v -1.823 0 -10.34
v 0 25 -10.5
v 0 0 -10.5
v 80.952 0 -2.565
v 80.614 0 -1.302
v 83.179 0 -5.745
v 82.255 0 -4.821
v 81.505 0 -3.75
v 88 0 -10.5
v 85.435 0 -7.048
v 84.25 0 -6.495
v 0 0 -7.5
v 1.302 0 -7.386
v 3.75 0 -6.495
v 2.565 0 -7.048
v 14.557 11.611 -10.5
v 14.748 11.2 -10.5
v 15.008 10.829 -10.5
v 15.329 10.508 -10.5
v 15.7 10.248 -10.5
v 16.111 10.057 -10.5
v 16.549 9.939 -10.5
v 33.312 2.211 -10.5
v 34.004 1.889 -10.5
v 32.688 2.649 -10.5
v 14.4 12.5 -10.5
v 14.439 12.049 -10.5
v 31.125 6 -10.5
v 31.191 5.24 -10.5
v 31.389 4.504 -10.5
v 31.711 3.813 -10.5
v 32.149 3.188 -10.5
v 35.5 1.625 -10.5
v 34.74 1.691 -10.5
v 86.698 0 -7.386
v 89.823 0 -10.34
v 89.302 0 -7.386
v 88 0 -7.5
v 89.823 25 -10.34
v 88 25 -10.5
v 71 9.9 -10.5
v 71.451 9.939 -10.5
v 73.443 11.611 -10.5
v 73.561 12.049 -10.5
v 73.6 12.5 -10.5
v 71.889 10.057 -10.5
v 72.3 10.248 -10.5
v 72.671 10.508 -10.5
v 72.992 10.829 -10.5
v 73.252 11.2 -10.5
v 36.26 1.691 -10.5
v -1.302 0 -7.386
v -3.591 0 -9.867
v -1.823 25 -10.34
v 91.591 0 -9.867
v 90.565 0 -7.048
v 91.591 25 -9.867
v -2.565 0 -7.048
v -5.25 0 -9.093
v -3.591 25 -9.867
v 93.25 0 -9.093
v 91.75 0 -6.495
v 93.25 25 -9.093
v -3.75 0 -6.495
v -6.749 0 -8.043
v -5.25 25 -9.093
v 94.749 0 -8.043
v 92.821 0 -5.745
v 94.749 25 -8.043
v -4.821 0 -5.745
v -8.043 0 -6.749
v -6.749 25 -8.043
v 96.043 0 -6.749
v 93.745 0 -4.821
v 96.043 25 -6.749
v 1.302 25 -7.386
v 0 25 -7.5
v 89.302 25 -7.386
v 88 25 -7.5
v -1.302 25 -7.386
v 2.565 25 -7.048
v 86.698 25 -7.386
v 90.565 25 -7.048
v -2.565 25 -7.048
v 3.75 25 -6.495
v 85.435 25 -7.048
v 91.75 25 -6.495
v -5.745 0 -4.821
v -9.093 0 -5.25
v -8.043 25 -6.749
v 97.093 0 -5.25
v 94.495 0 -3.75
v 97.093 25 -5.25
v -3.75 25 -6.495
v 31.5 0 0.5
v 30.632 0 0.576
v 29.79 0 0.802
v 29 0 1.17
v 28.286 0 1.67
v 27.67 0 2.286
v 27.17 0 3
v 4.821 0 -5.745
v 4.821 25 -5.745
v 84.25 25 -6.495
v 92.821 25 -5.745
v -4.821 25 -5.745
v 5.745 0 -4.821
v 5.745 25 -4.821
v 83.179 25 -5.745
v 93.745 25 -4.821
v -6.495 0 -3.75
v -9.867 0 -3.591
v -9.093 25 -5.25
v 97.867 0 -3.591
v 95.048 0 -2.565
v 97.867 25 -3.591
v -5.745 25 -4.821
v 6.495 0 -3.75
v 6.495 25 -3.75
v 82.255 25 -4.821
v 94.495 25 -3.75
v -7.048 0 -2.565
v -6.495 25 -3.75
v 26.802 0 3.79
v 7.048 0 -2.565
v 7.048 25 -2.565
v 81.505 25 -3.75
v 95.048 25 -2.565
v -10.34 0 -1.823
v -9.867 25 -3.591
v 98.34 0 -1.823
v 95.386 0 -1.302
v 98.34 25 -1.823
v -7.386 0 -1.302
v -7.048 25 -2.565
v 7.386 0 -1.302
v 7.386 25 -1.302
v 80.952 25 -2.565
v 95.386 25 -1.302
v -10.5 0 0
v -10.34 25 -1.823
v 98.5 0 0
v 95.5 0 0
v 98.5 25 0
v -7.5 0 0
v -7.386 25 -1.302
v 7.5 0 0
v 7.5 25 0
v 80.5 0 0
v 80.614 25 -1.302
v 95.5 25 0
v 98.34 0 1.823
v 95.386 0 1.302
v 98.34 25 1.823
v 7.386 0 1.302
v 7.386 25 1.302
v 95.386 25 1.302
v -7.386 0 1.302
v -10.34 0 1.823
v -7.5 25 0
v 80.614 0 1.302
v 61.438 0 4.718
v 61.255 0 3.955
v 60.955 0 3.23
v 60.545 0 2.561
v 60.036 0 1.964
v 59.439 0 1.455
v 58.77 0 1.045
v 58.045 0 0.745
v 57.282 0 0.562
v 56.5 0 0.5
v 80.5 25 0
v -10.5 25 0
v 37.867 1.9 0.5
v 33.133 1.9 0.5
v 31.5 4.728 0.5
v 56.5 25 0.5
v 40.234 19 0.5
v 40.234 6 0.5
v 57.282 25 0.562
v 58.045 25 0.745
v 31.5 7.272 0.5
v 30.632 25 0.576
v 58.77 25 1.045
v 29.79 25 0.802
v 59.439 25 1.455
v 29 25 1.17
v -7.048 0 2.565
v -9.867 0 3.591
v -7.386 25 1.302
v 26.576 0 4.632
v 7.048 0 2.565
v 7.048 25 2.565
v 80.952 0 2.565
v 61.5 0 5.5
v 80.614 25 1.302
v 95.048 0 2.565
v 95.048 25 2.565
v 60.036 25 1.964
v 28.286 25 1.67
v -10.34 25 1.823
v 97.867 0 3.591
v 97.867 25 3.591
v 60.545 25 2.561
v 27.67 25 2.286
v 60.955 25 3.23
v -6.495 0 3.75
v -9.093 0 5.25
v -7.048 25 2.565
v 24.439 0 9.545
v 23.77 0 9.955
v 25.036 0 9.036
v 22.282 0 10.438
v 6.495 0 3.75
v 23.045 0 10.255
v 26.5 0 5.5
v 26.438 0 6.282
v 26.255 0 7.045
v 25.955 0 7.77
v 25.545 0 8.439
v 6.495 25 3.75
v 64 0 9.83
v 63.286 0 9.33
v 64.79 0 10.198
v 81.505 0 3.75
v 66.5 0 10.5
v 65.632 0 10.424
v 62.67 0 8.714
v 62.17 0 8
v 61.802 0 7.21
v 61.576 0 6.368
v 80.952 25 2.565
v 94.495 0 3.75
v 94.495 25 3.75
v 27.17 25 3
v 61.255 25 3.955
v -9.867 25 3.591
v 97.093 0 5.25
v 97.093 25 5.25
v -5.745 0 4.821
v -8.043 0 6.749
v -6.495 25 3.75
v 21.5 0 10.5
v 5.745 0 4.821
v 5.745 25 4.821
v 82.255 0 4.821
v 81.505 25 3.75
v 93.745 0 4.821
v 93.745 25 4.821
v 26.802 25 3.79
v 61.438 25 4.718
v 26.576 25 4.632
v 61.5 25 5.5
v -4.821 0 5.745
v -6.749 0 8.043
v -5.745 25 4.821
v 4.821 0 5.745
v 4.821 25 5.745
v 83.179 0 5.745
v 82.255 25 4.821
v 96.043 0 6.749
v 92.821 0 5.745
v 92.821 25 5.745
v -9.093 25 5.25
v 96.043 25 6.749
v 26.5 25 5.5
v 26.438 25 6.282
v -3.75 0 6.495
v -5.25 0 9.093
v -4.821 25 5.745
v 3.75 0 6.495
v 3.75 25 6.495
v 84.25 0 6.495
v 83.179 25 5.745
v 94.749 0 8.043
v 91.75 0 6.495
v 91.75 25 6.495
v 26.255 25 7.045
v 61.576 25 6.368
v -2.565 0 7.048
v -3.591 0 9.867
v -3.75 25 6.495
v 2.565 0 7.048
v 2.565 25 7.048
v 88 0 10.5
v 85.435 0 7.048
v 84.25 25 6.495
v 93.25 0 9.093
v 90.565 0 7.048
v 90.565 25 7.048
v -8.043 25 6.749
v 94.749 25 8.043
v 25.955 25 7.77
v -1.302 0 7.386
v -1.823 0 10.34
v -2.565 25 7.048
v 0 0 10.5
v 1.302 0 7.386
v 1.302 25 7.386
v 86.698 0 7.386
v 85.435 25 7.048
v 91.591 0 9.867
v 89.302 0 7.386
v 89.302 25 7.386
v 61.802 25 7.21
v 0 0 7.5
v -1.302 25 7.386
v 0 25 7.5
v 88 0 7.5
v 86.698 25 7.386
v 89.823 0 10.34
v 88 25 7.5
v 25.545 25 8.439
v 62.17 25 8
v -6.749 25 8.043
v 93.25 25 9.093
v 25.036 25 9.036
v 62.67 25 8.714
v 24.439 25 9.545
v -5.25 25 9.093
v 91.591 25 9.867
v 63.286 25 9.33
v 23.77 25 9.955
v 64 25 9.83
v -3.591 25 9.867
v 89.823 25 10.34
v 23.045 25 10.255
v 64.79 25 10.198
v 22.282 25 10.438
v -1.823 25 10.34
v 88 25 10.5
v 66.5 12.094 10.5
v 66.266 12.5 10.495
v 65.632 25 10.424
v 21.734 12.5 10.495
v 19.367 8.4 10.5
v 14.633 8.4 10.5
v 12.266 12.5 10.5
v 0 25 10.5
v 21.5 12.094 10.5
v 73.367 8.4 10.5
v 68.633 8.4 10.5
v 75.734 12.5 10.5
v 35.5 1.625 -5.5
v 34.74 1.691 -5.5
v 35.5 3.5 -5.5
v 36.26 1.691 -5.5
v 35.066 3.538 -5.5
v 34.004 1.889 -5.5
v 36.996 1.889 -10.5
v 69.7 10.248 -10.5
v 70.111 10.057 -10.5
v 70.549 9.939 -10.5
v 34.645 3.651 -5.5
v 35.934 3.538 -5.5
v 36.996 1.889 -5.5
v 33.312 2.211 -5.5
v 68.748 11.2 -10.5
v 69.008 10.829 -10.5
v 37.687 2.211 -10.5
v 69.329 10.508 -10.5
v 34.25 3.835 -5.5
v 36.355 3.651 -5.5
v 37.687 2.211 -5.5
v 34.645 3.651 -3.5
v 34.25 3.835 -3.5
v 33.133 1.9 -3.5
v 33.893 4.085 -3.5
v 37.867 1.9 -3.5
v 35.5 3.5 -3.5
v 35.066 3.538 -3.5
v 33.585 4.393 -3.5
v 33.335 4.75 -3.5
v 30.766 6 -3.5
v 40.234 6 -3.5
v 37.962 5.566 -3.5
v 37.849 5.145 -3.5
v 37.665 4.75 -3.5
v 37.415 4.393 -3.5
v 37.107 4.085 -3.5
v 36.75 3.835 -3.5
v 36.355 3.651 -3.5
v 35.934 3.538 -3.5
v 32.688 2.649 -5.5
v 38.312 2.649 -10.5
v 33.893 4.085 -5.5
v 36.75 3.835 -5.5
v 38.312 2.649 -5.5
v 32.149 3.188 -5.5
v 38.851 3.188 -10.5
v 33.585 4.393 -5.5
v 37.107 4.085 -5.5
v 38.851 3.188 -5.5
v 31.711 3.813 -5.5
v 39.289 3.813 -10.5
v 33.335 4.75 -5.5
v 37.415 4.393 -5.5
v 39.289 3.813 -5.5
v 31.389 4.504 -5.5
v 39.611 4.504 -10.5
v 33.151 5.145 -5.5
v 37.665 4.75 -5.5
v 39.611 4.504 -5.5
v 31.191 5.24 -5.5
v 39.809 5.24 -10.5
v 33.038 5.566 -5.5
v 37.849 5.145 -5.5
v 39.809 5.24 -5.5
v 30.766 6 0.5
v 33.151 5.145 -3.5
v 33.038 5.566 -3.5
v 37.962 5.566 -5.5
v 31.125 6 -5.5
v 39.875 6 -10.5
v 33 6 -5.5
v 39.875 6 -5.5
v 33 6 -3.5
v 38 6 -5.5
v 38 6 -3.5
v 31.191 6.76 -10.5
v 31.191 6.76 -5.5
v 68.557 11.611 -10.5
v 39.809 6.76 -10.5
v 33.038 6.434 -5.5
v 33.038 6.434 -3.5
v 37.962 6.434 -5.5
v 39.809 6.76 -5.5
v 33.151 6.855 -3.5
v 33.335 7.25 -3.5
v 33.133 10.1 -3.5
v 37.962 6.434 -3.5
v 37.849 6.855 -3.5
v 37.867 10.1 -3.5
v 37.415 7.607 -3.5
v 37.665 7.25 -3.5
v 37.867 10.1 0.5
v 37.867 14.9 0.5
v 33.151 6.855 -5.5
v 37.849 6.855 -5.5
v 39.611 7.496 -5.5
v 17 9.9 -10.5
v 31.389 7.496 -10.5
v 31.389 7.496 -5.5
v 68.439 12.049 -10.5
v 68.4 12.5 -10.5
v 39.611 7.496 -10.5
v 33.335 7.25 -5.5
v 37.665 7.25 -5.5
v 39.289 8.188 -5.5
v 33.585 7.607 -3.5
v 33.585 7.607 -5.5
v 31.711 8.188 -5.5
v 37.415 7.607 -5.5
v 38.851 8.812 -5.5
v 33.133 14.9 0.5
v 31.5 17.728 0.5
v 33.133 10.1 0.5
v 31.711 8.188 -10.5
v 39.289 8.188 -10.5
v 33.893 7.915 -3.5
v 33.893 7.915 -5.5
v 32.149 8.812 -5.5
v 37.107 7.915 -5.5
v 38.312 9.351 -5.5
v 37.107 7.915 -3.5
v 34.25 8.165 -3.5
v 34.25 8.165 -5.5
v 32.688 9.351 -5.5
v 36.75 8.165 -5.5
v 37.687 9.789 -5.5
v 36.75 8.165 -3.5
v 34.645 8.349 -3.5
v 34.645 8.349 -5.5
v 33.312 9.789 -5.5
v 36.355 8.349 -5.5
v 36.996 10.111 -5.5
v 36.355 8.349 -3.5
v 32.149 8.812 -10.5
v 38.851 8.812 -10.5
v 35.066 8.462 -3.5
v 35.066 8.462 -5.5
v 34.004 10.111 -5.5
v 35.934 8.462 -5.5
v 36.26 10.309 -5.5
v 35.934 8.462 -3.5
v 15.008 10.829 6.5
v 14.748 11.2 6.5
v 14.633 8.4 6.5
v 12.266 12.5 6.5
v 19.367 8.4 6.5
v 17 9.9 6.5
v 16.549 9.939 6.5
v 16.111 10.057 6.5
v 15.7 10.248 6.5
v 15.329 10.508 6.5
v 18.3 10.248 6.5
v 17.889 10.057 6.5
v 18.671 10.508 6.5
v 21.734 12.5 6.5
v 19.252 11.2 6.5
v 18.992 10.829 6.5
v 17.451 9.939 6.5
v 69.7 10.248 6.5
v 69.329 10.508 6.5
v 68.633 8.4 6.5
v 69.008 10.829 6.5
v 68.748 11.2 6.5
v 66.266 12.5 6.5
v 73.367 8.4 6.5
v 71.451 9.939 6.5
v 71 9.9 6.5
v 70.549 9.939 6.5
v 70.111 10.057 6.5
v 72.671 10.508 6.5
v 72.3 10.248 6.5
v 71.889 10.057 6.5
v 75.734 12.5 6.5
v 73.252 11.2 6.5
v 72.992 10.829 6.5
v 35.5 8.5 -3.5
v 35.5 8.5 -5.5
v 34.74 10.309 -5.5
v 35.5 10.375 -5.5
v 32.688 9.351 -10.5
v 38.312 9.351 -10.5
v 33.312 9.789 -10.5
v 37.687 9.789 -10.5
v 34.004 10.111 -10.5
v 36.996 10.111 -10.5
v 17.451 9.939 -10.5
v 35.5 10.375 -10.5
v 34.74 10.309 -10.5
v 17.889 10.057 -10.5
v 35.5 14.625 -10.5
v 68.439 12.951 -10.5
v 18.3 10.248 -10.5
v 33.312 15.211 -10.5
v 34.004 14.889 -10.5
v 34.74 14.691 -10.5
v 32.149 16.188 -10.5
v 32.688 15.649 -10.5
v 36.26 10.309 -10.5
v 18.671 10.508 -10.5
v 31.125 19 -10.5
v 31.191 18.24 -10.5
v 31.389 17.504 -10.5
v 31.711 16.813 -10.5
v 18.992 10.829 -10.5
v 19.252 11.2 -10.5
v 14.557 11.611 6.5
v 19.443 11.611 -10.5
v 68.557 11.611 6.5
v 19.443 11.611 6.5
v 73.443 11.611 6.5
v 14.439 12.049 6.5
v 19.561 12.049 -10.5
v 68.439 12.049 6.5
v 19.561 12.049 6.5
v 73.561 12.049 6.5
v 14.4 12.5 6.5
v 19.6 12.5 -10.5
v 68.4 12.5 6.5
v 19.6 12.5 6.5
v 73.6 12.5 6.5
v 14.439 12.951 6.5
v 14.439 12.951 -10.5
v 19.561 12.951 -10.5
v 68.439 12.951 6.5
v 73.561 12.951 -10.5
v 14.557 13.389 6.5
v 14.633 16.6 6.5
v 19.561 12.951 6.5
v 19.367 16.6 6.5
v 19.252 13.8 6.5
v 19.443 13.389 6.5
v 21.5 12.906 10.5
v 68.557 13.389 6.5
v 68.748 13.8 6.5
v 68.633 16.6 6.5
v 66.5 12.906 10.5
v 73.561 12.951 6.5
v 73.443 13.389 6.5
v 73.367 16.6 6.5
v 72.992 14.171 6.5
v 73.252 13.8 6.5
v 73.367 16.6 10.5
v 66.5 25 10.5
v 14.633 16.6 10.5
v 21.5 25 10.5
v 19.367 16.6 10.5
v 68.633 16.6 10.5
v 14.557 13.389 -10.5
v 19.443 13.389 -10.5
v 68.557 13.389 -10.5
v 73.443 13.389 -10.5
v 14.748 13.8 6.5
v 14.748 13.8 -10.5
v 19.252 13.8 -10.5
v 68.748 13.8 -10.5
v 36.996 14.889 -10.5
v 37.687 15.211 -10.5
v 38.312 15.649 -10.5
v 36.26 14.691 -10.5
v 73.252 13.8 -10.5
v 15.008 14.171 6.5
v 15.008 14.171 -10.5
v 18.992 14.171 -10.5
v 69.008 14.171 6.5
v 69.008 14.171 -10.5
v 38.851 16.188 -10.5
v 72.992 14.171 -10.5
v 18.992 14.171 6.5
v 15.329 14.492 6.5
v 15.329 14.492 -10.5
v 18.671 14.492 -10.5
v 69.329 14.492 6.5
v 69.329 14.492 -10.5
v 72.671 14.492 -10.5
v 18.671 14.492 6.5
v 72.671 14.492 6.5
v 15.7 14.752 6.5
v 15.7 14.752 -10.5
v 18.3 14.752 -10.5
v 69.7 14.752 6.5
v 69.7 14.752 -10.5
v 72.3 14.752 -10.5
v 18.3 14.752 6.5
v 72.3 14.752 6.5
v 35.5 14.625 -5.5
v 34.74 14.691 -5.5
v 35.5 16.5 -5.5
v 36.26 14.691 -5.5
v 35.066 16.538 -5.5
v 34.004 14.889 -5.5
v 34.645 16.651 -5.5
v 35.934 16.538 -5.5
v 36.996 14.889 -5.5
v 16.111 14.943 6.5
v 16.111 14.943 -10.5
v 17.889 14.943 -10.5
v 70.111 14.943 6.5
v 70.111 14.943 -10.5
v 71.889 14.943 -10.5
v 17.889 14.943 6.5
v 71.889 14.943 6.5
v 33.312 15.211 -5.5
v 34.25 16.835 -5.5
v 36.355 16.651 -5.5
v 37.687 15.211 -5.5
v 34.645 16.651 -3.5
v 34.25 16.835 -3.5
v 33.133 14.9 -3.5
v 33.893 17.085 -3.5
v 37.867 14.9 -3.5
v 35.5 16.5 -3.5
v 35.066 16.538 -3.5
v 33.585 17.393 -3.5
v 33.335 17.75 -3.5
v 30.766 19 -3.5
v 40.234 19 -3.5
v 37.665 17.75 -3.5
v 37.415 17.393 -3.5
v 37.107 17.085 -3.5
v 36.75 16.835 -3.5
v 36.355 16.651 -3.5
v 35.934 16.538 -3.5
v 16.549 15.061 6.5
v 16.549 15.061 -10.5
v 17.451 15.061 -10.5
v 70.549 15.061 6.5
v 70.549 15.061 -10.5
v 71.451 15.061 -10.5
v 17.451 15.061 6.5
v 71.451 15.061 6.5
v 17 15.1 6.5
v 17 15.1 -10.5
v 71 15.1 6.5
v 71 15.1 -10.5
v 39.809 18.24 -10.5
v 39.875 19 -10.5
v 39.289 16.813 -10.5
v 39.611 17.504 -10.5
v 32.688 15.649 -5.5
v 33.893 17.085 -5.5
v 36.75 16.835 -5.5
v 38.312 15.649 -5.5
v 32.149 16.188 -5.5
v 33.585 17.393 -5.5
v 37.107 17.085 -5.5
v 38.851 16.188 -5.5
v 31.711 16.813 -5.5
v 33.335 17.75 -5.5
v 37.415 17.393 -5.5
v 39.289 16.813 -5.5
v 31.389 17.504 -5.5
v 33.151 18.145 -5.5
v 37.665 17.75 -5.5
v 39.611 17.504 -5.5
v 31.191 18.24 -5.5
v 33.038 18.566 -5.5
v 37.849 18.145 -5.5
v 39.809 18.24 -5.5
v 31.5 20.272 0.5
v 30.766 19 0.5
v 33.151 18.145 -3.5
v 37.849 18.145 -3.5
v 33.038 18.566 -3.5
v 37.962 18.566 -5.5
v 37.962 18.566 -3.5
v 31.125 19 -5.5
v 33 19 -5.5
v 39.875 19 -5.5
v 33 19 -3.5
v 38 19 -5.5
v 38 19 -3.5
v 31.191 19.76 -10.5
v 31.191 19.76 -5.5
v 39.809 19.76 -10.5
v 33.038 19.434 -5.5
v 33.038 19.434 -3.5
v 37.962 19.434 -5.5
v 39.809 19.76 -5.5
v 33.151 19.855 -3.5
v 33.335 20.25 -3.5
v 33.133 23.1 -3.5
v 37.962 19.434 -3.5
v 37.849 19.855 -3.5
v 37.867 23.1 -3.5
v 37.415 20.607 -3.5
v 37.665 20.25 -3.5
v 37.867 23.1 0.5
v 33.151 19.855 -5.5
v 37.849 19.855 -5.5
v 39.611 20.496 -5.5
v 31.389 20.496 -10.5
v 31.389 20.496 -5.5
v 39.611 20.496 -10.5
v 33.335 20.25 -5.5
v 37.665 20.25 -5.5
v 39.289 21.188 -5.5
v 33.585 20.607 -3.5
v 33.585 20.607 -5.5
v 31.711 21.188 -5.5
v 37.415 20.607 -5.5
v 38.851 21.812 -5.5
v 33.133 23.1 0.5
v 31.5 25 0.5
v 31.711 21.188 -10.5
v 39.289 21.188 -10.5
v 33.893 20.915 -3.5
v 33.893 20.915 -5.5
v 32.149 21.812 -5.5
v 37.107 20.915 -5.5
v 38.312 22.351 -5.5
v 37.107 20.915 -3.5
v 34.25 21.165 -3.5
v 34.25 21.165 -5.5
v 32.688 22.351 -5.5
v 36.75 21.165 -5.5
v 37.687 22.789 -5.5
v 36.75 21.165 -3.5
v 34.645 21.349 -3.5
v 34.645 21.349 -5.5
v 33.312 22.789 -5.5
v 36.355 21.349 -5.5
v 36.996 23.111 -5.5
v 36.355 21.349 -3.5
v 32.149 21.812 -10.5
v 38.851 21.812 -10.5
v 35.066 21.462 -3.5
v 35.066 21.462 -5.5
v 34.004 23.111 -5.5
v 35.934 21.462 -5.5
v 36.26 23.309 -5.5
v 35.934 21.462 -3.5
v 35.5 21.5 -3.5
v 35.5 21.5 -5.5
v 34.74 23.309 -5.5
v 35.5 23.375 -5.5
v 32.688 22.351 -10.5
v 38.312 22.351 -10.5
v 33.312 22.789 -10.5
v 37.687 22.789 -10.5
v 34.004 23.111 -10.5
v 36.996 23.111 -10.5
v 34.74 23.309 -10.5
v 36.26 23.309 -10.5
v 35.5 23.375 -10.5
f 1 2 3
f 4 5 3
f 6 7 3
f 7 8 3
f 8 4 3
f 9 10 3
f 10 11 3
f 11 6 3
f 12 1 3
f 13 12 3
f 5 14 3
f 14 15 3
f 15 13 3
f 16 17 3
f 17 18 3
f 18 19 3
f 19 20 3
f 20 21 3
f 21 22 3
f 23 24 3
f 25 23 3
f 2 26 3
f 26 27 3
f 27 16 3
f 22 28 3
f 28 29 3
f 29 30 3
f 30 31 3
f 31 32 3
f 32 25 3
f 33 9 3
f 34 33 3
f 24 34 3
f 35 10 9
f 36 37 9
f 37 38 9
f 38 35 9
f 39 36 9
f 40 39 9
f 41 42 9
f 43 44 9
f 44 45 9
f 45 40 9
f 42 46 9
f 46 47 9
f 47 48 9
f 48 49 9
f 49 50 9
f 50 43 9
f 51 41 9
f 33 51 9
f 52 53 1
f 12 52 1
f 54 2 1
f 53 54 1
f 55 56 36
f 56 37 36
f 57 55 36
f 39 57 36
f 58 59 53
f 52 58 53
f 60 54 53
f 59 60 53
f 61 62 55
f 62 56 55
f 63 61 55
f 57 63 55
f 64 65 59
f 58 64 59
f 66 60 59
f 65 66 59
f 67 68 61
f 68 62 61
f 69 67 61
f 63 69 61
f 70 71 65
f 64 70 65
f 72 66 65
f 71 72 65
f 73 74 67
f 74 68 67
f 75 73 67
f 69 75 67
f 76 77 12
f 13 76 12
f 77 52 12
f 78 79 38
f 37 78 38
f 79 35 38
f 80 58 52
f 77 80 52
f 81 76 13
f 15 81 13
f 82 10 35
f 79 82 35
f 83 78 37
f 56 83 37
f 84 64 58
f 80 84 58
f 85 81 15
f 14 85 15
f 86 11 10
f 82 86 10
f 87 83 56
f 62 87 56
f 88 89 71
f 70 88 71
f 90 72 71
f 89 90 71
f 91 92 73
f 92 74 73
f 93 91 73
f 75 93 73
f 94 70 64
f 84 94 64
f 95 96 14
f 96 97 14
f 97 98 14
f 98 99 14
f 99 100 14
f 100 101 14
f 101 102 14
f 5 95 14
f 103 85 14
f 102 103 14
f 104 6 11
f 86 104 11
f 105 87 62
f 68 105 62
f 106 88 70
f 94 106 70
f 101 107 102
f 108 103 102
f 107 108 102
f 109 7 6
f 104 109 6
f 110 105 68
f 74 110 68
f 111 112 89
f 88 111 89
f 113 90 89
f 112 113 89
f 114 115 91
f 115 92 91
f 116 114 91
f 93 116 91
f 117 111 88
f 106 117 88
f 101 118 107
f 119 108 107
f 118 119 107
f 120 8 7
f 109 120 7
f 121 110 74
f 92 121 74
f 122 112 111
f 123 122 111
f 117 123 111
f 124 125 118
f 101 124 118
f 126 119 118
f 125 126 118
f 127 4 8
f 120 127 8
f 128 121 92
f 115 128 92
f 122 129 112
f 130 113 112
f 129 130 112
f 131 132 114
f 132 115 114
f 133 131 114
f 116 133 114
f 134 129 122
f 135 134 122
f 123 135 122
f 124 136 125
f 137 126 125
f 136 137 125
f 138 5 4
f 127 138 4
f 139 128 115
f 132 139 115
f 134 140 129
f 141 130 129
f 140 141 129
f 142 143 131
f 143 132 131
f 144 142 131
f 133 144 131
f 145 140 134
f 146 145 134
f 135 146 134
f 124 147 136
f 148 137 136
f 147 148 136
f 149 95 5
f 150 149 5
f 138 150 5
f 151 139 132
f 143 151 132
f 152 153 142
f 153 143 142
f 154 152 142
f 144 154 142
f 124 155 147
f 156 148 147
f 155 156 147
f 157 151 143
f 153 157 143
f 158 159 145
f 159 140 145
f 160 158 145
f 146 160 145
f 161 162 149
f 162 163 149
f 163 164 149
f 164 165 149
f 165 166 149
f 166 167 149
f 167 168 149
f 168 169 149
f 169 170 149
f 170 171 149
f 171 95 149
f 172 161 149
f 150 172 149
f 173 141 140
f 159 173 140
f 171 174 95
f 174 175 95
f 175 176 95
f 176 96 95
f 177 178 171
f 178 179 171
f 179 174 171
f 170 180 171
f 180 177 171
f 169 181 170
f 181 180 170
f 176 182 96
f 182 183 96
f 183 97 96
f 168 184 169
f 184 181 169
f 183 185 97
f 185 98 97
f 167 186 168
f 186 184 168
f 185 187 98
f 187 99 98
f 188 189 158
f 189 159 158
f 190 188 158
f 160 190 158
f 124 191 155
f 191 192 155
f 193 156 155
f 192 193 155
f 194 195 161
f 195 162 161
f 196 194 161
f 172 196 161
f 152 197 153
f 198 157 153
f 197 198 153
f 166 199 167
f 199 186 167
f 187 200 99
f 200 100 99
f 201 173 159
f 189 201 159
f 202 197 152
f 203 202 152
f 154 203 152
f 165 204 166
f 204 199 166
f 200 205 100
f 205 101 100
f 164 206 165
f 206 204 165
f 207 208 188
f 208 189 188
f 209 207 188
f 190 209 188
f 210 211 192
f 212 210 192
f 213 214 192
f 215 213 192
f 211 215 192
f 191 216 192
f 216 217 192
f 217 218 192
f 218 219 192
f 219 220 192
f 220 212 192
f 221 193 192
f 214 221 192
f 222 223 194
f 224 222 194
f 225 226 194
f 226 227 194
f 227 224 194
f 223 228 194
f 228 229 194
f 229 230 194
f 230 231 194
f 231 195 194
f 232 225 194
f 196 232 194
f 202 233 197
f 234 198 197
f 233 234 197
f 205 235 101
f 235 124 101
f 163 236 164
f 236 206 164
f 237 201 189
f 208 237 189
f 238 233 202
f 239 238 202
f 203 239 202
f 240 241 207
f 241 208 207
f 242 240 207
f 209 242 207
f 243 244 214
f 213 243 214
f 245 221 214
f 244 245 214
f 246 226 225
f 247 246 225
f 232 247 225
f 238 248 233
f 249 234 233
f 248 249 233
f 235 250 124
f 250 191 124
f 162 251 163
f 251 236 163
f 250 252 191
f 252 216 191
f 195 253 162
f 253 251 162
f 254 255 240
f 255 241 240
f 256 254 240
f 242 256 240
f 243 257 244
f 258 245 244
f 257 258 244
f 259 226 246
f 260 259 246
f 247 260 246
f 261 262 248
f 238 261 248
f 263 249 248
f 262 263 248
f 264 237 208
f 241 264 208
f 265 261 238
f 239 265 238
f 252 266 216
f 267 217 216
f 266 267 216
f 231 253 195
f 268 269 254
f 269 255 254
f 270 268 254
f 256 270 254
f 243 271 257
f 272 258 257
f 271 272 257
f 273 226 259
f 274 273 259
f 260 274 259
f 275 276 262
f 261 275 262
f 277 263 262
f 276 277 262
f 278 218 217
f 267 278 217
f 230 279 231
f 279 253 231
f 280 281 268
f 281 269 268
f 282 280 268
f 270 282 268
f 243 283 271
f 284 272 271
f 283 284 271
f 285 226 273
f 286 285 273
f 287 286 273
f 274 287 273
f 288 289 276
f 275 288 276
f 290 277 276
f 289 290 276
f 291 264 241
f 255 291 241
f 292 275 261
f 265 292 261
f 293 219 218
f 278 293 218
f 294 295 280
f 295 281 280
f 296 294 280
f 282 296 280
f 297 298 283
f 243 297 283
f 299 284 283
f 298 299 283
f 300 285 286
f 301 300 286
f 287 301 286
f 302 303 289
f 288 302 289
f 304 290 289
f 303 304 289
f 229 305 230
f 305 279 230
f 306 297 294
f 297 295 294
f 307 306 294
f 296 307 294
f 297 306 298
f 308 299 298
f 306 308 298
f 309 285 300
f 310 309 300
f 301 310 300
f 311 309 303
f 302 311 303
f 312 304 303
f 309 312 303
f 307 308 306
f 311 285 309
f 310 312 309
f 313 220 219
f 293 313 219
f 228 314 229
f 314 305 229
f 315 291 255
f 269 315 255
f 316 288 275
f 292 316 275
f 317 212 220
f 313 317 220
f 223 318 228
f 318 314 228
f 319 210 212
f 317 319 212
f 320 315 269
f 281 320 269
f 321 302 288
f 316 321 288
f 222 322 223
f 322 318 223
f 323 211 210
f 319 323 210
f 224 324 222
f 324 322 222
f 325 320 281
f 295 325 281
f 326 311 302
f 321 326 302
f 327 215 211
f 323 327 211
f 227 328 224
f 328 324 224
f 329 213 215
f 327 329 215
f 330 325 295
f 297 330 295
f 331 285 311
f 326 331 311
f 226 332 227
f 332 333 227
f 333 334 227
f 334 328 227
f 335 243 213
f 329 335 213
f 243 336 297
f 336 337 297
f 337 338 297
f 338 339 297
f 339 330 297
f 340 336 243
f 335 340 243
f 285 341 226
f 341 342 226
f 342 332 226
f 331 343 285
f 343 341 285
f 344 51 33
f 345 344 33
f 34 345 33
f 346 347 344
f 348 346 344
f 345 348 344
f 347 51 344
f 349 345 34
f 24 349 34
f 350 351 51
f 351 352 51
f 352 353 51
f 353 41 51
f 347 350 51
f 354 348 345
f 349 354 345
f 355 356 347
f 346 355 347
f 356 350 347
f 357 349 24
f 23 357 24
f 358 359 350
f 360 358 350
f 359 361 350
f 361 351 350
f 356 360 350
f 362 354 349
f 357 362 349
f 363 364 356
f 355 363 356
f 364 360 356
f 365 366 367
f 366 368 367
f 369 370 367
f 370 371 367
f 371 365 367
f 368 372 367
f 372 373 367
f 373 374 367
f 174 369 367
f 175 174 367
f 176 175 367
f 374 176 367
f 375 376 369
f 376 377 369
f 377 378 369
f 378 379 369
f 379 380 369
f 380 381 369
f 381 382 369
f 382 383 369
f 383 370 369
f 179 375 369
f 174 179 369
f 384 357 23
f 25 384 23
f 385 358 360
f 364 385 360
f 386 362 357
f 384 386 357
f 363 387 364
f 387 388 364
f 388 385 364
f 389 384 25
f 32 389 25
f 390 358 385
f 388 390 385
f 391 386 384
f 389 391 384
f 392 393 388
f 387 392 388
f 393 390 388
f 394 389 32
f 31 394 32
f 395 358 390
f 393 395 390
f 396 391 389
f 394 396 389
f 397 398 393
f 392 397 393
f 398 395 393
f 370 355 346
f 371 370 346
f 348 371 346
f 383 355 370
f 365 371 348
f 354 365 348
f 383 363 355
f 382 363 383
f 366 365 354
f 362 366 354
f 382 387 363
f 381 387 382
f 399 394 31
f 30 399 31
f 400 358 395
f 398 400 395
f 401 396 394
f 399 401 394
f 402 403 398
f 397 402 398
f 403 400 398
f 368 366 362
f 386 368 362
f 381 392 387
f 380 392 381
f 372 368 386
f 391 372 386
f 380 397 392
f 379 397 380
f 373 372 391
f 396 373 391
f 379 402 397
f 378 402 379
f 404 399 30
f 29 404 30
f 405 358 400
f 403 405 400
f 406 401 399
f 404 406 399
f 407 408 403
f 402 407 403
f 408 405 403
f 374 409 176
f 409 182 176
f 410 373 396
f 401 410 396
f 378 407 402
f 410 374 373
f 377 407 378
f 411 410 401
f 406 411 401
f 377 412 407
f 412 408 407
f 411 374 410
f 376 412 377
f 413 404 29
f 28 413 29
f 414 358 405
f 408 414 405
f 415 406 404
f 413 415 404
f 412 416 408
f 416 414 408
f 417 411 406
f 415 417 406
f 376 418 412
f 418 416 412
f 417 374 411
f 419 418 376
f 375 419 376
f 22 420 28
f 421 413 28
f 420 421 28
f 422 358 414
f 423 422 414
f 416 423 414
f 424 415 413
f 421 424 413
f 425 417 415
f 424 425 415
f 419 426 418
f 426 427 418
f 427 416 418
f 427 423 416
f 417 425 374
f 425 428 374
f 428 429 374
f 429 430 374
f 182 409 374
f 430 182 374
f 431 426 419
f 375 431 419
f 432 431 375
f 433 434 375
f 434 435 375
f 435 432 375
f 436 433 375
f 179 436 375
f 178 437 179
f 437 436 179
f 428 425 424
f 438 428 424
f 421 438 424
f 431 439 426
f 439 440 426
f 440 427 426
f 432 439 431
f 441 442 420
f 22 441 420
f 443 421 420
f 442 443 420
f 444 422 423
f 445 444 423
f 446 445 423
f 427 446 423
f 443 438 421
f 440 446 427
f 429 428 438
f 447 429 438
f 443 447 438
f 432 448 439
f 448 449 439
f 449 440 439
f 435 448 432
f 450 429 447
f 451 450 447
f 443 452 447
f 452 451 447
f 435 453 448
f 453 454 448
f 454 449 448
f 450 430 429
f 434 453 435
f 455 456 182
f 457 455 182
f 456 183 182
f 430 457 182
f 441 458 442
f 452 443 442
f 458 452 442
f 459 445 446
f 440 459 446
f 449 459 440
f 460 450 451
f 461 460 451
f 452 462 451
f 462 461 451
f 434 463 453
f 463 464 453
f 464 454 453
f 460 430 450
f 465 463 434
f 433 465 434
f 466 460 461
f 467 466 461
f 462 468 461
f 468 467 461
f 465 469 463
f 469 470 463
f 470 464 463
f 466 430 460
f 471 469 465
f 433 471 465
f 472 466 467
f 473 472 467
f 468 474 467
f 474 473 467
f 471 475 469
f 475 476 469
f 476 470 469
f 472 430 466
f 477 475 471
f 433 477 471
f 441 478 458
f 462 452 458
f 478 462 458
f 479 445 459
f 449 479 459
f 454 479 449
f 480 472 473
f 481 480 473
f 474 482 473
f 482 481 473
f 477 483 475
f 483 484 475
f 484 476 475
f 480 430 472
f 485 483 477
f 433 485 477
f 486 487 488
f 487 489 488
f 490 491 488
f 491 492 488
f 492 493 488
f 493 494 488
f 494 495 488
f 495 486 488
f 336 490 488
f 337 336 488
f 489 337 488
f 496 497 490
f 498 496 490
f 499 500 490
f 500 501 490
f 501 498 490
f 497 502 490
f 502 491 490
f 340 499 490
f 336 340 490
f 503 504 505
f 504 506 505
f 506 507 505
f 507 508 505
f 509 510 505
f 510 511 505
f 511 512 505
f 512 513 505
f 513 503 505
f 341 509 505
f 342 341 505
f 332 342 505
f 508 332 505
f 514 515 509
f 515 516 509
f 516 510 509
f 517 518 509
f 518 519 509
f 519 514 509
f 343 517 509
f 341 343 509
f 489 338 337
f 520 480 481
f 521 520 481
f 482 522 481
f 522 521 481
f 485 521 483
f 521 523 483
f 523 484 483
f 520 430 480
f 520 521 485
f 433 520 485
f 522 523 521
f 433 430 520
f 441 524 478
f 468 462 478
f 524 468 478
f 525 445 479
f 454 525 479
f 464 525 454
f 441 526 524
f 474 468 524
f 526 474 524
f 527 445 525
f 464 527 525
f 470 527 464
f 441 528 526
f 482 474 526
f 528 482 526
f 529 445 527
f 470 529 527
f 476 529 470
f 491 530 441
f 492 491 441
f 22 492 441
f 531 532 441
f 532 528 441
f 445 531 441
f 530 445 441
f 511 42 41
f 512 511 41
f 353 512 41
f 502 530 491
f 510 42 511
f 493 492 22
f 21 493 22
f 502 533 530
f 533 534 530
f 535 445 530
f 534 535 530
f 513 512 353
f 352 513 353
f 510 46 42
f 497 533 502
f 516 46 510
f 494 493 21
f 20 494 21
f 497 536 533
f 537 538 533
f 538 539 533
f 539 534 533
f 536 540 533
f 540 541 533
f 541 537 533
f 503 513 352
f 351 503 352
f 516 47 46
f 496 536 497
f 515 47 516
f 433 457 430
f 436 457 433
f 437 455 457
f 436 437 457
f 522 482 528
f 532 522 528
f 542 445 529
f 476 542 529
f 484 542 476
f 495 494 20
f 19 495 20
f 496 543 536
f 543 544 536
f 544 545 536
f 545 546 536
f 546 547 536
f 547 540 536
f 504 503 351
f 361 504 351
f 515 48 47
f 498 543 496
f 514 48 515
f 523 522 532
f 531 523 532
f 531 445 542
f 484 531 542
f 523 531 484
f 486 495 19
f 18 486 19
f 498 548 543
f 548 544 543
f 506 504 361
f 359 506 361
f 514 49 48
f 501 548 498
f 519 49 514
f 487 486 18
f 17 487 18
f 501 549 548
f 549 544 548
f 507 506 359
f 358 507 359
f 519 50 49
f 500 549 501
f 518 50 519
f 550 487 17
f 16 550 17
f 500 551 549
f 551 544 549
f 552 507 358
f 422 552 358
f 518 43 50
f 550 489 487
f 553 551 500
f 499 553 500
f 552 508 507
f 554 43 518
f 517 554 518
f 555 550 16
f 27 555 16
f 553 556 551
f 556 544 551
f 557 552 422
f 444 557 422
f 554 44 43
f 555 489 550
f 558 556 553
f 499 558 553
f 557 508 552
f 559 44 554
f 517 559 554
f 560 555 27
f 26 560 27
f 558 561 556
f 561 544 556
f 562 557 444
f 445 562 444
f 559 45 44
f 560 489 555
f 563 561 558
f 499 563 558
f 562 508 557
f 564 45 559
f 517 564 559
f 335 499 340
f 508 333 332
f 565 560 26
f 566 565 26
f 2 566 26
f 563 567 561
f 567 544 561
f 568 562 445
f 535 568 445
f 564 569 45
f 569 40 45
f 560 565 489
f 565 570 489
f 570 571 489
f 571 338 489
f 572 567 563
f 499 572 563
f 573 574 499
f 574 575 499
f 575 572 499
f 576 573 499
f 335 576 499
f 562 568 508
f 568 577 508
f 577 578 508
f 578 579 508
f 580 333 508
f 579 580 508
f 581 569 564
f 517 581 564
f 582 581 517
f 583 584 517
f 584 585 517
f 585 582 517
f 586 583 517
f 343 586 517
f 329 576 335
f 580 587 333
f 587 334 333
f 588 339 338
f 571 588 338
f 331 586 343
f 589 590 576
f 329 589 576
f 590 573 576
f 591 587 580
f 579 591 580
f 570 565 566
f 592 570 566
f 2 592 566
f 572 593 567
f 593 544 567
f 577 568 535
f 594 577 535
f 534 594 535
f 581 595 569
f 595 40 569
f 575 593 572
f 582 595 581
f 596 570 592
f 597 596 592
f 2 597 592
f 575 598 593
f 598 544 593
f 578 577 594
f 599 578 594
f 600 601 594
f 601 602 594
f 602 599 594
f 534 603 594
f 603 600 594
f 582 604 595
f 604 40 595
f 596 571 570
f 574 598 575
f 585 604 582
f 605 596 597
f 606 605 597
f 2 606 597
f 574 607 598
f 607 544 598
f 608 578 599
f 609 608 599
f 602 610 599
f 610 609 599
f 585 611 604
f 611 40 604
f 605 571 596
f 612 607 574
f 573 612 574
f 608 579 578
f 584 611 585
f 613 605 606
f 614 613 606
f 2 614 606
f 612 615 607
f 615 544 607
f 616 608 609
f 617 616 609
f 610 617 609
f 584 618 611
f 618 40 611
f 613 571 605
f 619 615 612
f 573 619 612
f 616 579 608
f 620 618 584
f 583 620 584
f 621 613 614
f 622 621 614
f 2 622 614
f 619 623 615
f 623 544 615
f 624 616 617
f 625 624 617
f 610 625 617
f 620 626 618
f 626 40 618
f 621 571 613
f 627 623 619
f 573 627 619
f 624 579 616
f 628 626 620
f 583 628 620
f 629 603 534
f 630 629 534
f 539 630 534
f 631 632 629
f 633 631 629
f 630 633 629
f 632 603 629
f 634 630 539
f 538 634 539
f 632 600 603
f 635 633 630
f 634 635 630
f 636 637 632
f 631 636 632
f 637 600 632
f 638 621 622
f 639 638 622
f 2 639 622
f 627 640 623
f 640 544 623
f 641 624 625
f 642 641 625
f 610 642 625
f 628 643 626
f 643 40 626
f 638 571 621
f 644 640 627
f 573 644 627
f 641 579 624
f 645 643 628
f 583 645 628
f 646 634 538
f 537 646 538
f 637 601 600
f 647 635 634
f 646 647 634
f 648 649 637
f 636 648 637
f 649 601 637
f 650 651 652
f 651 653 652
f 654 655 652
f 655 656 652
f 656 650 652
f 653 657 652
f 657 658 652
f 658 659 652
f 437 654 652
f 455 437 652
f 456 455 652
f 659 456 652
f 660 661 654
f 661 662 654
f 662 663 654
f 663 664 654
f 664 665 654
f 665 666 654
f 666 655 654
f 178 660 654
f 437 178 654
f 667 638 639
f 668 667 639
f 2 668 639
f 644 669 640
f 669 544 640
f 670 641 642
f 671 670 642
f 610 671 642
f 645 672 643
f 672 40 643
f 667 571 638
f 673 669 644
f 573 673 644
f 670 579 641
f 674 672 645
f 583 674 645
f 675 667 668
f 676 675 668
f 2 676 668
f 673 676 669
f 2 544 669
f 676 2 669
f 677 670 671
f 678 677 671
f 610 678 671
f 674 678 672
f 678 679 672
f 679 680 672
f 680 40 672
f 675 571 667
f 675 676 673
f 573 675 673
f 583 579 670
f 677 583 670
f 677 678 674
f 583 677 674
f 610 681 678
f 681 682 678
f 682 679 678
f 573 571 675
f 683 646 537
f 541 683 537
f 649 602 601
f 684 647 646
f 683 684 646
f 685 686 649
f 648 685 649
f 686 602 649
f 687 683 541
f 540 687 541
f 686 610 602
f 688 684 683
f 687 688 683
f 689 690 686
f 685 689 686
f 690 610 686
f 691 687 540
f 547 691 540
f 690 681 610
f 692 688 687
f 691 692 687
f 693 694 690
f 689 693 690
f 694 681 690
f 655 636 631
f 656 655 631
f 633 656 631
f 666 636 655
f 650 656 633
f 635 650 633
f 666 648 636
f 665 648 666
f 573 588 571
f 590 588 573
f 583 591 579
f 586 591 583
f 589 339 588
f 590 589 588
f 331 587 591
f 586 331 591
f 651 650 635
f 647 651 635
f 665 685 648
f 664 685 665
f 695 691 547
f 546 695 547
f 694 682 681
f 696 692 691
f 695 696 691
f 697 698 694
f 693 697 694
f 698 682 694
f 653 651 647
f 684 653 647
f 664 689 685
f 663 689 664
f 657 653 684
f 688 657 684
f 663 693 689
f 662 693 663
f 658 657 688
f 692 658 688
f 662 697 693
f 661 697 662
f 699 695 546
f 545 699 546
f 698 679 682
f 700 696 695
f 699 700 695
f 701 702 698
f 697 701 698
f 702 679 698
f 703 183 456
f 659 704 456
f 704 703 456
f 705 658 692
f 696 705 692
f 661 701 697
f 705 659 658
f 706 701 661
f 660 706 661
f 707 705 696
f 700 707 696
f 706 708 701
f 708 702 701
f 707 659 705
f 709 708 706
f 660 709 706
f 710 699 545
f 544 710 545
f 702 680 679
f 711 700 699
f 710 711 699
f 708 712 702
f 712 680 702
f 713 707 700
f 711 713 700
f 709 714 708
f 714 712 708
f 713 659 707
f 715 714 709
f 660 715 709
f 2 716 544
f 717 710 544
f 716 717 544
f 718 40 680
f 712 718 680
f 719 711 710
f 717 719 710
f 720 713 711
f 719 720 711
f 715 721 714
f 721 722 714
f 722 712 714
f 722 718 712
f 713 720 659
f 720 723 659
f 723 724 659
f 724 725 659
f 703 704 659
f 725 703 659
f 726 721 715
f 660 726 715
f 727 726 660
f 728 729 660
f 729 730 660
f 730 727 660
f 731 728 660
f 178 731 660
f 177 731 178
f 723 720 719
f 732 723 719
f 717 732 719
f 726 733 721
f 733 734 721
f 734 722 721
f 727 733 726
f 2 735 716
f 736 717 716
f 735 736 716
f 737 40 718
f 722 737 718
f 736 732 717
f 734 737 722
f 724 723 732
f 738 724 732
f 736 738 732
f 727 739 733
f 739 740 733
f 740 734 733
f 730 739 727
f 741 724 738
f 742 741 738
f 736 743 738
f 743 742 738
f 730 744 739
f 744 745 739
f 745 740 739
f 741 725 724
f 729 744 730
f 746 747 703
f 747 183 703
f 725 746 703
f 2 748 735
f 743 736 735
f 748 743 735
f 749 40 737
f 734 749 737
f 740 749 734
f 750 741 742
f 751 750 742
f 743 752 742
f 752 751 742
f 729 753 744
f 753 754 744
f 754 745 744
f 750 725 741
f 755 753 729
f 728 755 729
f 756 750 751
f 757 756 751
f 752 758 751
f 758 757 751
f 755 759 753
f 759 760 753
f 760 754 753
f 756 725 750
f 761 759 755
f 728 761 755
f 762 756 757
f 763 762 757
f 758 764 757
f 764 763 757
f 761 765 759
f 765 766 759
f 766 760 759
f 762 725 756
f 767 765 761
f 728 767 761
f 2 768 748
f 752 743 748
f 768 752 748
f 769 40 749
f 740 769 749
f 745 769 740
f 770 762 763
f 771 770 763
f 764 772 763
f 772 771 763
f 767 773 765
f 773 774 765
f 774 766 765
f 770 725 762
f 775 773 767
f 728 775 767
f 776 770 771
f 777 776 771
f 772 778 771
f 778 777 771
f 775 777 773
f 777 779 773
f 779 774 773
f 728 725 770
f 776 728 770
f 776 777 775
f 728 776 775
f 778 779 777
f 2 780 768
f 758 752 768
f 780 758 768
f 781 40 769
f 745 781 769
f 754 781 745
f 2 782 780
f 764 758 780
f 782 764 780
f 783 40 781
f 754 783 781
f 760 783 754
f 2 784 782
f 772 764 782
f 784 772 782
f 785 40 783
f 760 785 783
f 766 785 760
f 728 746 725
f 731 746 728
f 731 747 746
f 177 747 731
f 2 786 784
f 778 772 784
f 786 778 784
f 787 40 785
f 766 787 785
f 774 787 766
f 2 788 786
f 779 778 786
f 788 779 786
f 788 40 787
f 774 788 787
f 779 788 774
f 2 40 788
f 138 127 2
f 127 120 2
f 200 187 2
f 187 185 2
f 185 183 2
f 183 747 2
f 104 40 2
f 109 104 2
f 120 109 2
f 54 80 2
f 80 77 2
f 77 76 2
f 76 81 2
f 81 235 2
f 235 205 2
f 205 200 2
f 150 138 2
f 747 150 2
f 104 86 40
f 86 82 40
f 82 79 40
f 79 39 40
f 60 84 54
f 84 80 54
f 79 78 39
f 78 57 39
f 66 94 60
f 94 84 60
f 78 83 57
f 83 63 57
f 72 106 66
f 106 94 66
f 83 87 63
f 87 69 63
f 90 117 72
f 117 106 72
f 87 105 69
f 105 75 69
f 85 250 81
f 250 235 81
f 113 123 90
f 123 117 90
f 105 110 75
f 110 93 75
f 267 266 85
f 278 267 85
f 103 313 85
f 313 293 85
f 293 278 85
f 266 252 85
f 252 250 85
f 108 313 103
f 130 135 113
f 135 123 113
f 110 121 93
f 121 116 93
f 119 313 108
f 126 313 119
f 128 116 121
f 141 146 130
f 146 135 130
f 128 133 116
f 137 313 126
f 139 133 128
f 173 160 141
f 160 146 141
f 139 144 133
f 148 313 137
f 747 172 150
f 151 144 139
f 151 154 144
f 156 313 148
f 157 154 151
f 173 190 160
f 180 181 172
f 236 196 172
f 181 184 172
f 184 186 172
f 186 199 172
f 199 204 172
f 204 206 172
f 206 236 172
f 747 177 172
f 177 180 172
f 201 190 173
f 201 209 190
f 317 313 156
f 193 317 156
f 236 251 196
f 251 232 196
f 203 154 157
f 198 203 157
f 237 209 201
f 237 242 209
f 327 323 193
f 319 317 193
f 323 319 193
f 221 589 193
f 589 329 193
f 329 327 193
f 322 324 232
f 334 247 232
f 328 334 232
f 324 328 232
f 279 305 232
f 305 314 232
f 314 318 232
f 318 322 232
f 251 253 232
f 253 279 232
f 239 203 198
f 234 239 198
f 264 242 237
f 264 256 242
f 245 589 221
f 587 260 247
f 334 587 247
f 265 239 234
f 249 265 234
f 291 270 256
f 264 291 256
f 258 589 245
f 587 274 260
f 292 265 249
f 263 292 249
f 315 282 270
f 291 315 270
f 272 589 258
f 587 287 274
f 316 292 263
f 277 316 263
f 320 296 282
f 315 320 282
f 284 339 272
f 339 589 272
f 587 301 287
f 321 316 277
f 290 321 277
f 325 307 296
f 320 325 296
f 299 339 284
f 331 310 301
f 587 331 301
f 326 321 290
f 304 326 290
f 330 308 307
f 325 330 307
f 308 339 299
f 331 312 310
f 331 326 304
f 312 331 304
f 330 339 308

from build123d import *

# Parameters (mm, degrees)
CROQUIS1_R              = 7.5
SALIENTE_EXTRUIR1_DEPTH = 25
CROQUIS6_W              = 35
CROQUIS6_H              = 20
CORTAR_EXTRUIR3_DEPTH   = 103.164083709
REDONDEO3_START         = -1
REDONDEO3_DEPTH         = 27
REDONDEO3_2_DEPTH       = 25
CROQUIS7_R              = 2.5
CORTAR_EXTRUIR4_DEPTH   = 104.770178761
CROQUIS8_R              = 4.375
CORTAR_EXTRUIR5_DEPTH   = 5
CROQUIS9_R              = 2.6
CORTAR_EXTRUIR6_DEPTH   = 104.770178761
CORTAR_EXTRUIR7_DEPTH   = 4
CORTAR_EXTRUIR8_DEPTH   = 4
CORTAR_EXTRUIR9_DEPTH   = 4


with BuildPart() as part:
    # Croquis1 → Saliente-Extruir1 (new body)
    with BuildSketch(Plane(origin=(0, 0, 0), x_dir=(1, 0, 0), z_dir=(0, 1, 0))):
        with BuildLine():
            Line((88, 10.5), (0, 10.5))
            ThreePointArc((0, 10.5), (-10.5, 0), (0, -10.5))
            Line((0, -10.5), (88, -10.5))
            ThreePointArc((88, -10.5), (98.5, 0), (88, 10.5))
        make_face()
        with Locations(Location((0, 0, 0), (0, 0, 270))):
            Circle(CROQUIS1_R, mode=Mode.SUBTRACT)
        with Locations(Location((88, 0, 0), (0, 0, 270))):
            Circle(CROQUIS1_R, mode=Mode.SUBTRACT)
    extrude(amount=SALIENTE_EXTRUIR1_DEPTH)

    # Croquis6 → Cortar-Extruir3 (cut, through all)
    with BuildSketch(Plane.XZ):
        with Locations((44, 10.5)):
            Rectangle(CROQUIS6_W, CROQUIS6_H)
    extrude(amount=-CORTAR_EXTRUIR3_DEPTH, mode=Mode.SUBTRACT)

    # Redondeo3: read off the stored shape, not the designer's step
    # Redondeo3 outline → Redondeo3 (cut)
    with BuildSketch(Plane(origin=(0, 0, 0), x_dir=(1, 0, 0), z_dir=(0, 1, 0)).offset(REDONDEO3_START)):
        with BuildLine():
            Line((26.5, -10.5), (26.5, -5.5))
            ThreePointArc((26.5, -5.5), (25.035533906, -9.035533906), (21.5, -10.5))
            Line((21.5, -10.5), (26.5, -10.5))
        make_face()
        with BuildLine():
            ThreePointArc((66.5, -10.5), (62.964466094, -9.035533906), (61.5, -5.5))
            Line((61.5, -5.5), (61.5, -10.5))
            Line((61.5, -10.5), (66.5, -10.5))
        make_face()
    extrude(amount=REDONDEO3_DEPTH, mode=Mode.SUBTRACT)

    # Redondeo3 2 outline → Redondeo3 2 (add)
    with BuildSketch(Plane(origin=(0, 0, 0), x_dir=(1, 0, 0), z_dir=(0, 1, 0))):
        with BuildLine():
            Line((61.5, -0.5), (56.5, -0.5))
            ThreePointArc((56.5, -0.5), (60.035533906, -1.964466094), (61.5, -5.5))
            Line((61.5, -5.5), (61.5, -0.5))
        make_face()
        with BuildLine():
            ThreePointArc((26.5, -5.5), (27.964466094, -1.964466094), (31.5, -0.5))
            Line((31.5, -0.5), (26.5, -0.5))
            Line((26.5, -0.5), (26.5, -5.5))
        make_face()
    extrude(amount=REDONDEO3_2_DEPTH)

    # Croquis7 → Cortar-Extruir4 (cut, through all)
    with BuildSketch(Plane(origin=(0, 0, -10.5), x_dir=(-1, 0, 0), z_dir=(0, 0, -1))):
        with Locations((-35.5, 19)):
            Circle(CROQUIS7_R)
        with Locations((-35.5, 6)):
            Circle(CROQUIS7_R)
    extrude(amount=-CORTAR_EXTRUIR4_DEPTH, mode=Mode.SUBTRACT)

    # Croquis8 → Cortar-Extruir5 (cut)
    with BuildSketch(Plane(origin=(0, 0, -10.5), x_dir=(-1, 0, 0), z_dir=(0, 0, -1))):
        with Locations((-35.5, 19)):
            Circle(CROQUIS8_R)
        with Locations((-35.5, 6)):
            Circle(CROQUIS8_R)
    extrude(amount=-CORTAR_EXTRUIR5_DEPTH, mode=Mode.SUBTRACT)

    # Croquis9 → Cortar-Extruir6 (cut, through all)
    with BuildSketch(Plane(origin=(0, 0, -10.5), x_dir=(-1, 0, 0), z_dir=(0, 0, -1))):
        with Locations((-71, 12.5)):
            Circle(CROQUIS9_R)
        with Locations(Location((-17, 12.5, 0), (0, 0, 180))):
            Circle(CROQUIS9_R)
    extrude(amount=-CORTAR_EXTRUIR6_DEPTH, mode=Mode.SUBTRACT)

    # Croquis10 → Cortar-Extruir7 (cut)
    with BuildSketch(Plane.XY.offset(10.5)):
        Polygon((75.734272207, 12.5), (73.367136104, 16.6), (68.632863896, 16.6), (66.265727793, 12.5), (68.632863896, 8.4), (73.367136104, 8.4), align=None)
    extrude(amount=-CORTAR_EXTRUIR7_DEPTH, mode=Mode.SUBTRACT)

    # Croquis11 → Cortar-Extruir8 (cut)
    with BuildSketch(Plane.XY.offset(0.5)):
        Polygon((40.234272207, 6), (37.867136104, 10.1), (33.132863896, 10.1), (30.765727793, 6), (33.132863896, 1.9), (37.867136104, 1.9), align=None)
        Polygon((40.234272207, 19), (37.867136104, 23.1), (33.132863896, 23.1), (30.765727793, 19), (33.132863896, 14.9), (37.867136104, 14.9), align=None)
    extrude(amount=-CORTAR_EXTRUIR8_DEPTH, mode=Mode.SUBTRACT)

    # Croquis12 → Cortar-Extruir9 (cut)
    with BuildSketch(Plane.XY.offset(10.5)):
        Polygon((12.265727793, 12.5), (14.632863896, 8.4), (19.367136104, 8.4), (21.734272207, 12.5), (19.367136104, 16.6), (14.632863896, 16.6), align=None)
    extrude(amount=-CORTAR_EXTRUIR9_DEPTH, mode=Mode.SUBTRACT)


solid = part.part
